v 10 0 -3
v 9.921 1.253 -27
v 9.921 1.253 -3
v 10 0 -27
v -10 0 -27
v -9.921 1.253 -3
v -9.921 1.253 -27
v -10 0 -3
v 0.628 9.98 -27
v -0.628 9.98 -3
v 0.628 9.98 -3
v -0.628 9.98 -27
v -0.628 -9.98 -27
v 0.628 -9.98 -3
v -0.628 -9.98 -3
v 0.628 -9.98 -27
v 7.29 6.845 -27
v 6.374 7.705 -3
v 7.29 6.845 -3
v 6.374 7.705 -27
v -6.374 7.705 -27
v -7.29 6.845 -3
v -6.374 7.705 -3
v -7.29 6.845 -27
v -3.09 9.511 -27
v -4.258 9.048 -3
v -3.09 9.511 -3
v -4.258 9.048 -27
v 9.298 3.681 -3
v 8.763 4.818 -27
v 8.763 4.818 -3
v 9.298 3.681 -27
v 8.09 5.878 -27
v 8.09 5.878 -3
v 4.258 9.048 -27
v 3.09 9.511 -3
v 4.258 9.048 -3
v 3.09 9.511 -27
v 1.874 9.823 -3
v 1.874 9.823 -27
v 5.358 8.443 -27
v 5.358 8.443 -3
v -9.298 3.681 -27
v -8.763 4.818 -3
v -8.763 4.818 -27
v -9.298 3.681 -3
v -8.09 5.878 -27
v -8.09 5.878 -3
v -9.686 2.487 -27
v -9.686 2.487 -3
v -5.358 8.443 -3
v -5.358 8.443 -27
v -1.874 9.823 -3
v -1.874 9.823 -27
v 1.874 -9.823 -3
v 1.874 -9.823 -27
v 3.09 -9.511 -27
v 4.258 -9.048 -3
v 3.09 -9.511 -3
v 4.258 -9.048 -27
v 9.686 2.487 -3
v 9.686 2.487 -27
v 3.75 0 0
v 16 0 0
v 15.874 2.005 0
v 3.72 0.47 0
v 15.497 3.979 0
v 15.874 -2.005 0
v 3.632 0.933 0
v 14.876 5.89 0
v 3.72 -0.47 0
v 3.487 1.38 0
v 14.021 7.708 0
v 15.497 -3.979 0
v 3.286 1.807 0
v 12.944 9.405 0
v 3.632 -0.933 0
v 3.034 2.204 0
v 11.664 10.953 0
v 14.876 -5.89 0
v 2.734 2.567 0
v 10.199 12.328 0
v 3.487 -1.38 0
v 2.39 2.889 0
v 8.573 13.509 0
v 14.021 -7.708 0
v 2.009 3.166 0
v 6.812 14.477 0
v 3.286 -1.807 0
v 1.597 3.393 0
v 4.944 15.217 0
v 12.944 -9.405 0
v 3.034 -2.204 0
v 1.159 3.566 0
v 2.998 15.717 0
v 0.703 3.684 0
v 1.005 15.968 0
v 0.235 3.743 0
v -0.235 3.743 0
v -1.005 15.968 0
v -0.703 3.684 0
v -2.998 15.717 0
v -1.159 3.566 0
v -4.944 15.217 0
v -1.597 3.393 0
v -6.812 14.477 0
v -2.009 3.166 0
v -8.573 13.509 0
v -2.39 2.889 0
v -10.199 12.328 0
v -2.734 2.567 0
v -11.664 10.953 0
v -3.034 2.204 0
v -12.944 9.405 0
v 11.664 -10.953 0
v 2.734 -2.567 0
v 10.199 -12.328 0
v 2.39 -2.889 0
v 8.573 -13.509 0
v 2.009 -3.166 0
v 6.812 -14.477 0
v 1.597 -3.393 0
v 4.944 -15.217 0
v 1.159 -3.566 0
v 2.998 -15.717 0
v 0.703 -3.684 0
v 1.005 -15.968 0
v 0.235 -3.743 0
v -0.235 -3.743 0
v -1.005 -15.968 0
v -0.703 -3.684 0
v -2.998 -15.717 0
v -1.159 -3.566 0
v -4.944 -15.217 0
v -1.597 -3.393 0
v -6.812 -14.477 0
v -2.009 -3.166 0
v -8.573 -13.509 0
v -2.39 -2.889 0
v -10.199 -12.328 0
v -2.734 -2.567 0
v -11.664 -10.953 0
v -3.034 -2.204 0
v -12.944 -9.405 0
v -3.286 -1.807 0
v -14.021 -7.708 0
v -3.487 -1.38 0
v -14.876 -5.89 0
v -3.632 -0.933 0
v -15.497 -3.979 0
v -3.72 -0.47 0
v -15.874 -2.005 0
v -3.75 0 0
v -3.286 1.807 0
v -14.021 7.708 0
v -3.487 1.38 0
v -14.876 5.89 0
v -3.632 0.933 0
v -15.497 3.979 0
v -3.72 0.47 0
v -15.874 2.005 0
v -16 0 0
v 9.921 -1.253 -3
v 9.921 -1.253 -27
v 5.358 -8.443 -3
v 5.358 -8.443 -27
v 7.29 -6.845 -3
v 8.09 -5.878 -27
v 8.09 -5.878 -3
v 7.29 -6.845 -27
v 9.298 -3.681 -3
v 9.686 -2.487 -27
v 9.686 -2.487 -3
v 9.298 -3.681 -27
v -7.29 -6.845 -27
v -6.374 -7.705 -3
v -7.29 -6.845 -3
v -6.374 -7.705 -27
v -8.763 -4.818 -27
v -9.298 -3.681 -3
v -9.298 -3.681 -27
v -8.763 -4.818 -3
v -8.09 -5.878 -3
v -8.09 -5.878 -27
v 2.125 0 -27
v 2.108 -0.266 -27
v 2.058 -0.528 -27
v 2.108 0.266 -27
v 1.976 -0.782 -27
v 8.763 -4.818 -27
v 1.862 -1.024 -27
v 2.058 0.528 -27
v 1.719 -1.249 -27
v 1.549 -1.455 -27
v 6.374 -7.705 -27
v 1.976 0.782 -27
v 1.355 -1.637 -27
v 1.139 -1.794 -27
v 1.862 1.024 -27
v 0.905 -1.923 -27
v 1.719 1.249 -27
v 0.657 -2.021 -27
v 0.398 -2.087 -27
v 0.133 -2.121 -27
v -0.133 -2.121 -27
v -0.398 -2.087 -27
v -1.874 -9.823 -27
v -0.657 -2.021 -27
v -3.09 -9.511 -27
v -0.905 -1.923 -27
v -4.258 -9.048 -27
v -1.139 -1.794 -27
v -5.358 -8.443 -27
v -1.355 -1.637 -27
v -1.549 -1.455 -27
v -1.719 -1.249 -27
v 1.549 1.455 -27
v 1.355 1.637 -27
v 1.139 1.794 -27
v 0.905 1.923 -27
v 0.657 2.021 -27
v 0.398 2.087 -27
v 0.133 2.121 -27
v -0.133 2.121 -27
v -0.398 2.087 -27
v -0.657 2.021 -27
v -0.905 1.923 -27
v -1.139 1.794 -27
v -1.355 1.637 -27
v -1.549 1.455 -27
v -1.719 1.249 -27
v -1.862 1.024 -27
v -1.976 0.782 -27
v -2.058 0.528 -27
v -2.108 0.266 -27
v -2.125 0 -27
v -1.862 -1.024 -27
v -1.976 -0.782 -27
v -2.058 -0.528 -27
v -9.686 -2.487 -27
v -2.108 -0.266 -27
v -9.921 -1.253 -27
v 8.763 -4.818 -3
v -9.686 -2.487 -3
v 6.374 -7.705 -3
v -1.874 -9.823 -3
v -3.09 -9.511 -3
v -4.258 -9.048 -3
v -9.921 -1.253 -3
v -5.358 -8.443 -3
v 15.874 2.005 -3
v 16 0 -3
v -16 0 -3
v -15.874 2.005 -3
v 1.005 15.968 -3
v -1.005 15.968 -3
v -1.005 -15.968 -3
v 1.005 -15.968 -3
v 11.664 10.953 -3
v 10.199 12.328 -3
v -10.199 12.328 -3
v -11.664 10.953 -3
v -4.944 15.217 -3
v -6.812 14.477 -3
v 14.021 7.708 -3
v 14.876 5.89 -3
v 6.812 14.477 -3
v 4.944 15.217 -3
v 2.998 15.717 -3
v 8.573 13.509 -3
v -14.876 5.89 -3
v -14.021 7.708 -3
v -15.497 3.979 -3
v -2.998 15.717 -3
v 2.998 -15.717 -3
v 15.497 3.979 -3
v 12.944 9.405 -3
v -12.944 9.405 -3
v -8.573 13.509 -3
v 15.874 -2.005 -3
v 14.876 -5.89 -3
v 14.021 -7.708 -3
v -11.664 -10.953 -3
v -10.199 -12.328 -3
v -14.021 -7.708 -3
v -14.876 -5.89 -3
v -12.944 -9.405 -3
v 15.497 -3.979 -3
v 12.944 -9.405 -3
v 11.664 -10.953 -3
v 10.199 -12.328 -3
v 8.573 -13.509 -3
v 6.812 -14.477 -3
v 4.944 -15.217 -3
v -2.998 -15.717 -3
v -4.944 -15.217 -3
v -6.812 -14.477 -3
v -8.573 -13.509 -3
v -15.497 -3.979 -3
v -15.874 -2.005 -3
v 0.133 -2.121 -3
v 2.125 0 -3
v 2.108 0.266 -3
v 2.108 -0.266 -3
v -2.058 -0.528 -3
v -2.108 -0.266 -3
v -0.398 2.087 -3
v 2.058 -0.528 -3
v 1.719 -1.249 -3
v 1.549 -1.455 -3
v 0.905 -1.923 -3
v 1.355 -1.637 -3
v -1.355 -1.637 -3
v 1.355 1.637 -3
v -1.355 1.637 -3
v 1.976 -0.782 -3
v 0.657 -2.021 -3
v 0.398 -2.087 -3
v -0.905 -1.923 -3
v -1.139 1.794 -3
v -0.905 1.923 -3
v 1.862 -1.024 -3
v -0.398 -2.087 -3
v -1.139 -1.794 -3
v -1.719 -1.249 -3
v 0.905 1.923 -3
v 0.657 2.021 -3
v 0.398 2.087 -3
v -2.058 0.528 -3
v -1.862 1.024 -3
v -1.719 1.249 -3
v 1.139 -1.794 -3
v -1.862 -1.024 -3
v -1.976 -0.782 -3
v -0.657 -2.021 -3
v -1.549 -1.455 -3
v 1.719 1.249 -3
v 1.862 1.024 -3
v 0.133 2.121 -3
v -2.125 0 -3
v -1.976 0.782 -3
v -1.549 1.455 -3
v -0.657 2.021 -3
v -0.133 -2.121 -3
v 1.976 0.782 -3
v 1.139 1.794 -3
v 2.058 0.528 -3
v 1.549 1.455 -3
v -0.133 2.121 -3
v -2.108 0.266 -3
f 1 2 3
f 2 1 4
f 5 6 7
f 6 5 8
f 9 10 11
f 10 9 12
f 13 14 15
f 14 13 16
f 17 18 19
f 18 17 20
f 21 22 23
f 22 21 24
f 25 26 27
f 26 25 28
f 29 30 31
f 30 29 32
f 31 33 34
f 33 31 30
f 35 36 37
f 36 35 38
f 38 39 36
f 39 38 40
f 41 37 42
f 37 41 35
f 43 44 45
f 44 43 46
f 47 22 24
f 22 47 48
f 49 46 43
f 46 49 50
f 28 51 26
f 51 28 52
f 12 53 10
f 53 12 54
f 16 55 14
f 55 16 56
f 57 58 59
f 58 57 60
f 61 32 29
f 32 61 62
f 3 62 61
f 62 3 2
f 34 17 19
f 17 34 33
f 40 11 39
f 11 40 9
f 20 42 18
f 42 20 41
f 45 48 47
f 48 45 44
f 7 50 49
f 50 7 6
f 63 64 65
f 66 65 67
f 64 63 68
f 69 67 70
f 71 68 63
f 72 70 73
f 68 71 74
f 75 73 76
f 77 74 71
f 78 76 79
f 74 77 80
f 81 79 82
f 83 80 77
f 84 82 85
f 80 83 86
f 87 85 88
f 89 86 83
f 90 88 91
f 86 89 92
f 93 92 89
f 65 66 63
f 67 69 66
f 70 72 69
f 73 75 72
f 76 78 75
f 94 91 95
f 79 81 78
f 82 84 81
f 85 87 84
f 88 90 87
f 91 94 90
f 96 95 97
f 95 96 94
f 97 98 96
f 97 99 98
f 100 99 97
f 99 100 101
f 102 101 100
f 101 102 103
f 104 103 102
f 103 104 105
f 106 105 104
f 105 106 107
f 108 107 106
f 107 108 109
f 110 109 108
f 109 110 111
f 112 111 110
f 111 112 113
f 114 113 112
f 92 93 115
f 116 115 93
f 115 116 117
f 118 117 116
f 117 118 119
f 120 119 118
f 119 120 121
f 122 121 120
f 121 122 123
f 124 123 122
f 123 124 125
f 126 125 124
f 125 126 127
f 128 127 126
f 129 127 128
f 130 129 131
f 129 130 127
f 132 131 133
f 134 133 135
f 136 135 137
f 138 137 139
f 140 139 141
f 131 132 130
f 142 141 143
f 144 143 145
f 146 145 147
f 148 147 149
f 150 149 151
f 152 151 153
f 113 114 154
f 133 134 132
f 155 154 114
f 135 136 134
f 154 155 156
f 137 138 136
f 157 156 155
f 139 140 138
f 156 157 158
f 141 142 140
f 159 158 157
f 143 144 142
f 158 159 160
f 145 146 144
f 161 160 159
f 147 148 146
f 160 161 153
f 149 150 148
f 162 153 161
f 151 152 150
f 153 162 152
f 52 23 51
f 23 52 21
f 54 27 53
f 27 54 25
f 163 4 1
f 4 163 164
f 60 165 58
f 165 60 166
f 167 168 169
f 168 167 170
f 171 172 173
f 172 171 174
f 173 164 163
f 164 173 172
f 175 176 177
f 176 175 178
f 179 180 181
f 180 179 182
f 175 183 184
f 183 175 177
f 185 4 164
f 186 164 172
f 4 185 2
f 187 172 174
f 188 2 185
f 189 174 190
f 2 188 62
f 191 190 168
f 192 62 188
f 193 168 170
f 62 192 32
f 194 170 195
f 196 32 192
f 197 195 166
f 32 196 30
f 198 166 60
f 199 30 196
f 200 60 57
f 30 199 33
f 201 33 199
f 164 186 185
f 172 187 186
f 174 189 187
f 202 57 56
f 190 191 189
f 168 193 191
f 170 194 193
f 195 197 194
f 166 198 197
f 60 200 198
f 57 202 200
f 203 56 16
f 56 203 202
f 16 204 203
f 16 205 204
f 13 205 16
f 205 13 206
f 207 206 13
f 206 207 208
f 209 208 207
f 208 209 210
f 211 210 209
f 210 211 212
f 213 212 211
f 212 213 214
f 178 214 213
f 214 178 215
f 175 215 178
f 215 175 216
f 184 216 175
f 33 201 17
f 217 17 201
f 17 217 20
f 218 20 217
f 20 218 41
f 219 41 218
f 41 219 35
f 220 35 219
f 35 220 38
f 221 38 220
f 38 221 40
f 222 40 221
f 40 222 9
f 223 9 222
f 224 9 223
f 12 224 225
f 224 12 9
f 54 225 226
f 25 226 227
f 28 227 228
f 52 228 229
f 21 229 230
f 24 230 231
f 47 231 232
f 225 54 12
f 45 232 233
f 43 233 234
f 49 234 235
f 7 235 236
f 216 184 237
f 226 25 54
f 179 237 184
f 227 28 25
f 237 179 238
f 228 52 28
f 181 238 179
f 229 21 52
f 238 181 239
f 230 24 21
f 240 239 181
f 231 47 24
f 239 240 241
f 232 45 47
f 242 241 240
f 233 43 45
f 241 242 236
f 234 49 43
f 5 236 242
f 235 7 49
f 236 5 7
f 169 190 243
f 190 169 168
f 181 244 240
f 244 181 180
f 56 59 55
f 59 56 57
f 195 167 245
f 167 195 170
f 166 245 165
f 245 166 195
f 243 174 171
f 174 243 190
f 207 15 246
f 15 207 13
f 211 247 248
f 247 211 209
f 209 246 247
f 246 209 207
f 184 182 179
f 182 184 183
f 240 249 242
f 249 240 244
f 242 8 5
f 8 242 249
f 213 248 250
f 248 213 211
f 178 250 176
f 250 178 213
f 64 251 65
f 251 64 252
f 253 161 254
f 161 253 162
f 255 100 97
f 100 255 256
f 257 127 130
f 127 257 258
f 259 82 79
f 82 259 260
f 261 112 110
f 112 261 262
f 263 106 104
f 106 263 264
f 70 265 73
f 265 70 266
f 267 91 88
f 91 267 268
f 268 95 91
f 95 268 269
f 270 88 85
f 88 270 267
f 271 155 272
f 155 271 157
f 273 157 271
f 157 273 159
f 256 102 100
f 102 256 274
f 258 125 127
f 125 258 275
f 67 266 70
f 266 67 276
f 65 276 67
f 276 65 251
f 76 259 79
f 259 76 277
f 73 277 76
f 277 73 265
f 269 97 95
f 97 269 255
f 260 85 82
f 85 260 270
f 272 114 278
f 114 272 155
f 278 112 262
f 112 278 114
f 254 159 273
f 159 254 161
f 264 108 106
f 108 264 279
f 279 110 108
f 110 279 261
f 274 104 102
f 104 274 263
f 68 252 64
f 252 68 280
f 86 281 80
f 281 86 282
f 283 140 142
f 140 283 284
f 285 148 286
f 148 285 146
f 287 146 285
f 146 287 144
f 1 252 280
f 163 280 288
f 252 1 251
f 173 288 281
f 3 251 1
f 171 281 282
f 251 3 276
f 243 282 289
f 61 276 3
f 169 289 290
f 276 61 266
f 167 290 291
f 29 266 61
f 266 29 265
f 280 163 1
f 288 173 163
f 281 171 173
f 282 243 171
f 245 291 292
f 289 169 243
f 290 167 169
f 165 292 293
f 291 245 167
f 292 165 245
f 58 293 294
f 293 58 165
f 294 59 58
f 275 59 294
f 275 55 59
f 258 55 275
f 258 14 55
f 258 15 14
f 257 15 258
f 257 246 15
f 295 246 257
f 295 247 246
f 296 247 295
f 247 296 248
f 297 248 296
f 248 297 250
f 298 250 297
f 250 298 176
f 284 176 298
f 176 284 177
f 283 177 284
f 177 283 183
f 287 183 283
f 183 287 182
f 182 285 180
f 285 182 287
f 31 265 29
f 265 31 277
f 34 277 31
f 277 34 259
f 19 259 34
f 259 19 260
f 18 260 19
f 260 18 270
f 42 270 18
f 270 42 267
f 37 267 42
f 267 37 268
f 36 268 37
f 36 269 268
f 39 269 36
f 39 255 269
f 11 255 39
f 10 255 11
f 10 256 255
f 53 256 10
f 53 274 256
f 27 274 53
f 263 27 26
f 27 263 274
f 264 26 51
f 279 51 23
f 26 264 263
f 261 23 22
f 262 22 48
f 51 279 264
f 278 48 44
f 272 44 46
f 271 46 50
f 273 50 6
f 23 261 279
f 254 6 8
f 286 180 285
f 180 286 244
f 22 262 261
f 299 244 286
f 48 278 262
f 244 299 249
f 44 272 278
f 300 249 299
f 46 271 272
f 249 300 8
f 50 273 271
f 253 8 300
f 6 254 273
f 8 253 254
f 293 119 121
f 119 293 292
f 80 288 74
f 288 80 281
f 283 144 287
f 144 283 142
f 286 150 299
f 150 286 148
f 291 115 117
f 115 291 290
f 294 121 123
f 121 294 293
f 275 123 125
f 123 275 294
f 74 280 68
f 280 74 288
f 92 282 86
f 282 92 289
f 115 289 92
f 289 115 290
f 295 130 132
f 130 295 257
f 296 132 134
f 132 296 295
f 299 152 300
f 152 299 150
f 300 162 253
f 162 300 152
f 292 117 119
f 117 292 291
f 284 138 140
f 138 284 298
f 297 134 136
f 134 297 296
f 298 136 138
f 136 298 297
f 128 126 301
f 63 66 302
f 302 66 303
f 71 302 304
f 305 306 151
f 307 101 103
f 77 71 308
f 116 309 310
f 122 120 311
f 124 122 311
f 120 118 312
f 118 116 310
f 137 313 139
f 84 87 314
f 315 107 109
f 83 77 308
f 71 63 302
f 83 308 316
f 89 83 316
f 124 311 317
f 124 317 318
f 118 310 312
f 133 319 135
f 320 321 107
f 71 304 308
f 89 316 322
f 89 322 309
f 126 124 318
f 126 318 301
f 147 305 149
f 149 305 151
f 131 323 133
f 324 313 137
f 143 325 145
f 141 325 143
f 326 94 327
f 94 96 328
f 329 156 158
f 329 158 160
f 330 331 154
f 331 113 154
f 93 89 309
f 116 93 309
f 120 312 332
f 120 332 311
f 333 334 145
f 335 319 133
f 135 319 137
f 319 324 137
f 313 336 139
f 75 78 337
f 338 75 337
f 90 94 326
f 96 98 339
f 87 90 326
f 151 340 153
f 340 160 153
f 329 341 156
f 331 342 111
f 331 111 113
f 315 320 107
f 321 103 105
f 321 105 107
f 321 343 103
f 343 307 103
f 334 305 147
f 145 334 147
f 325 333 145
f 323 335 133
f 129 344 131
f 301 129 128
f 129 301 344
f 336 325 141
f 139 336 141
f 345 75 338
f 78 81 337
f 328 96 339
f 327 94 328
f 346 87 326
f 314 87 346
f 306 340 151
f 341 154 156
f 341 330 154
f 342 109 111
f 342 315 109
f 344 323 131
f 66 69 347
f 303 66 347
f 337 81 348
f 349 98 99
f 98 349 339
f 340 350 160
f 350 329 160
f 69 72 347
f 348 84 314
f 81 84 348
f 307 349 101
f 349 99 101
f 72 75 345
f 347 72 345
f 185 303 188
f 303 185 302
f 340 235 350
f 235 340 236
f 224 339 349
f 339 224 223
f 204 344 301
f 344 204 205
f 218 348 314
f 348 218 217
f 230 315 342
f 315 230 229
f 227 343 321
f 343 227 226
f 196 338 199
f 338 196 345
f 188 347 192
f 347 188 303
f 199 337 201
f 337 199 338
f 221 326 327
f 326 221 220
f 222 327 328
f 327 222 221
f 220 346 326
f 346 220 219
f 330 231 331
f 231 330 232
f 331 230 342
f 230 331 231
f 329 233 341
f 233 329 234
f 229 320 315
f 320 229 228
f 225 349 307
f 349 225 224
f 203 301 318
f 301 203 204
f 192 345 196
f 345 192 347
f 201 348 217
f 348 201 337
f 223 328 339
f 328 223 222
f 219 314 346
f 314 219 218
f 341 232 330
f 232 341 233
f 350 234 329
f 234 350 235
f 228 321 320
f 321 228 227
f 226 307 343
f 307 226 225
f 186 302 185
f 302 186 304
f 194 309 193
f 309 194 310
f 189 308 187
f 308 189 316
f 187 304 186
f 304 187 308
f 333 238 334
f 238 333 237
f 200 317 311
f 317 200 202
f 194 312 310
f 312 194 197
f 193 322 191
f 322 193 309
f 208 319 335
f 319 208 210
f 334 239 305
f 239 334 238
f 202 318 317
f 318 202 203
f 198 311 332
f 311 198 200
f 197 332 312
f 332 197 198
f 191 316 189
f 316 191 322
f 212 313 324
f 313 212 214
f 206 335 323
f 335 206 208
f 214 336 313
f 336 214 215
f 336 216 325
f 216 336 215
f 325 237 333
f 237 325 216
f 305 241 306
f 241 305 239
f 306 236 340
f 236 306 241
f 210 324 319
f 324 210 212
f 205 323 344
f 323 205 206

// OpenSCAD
$fn = 50;


difference() {
	union() {
		translate(v = [0, 0, -27.0000000000]) {
			cylinder(h = 27, r = 10.0000000000);
		}
		translate(v = [0, 0, -3.0000000000]) {
			cylinder(h = 3, r = 16.0000000000);
		}
	}
	union() {
		translate(v = [0, 0, 0]) {
			rotate(a = [0, 0, 0]) {
				difference() {
					union() {
						#translate(v = [0, 0, -27.0000000000]) {
							cylinder(h = 27, r = 2.0000000000);
						}
						#translate(v = [0, 0, -3]) {
							cylinder(h = 3, r = 10.0000000000, r1 = 2.1250000000, r2 = 3.7500000000);
						}
						#translate(v = [0, 0, -27.0000000000]) {
							cylinder(h = 27, r = 2.1250000000);
						}
						#translate(v = [0, 0, -27.0000000000]) {
							cylinder(h = 27, r = 2.0000000000);
						}
					}
					union();
				}
			}
		}
	}
}
